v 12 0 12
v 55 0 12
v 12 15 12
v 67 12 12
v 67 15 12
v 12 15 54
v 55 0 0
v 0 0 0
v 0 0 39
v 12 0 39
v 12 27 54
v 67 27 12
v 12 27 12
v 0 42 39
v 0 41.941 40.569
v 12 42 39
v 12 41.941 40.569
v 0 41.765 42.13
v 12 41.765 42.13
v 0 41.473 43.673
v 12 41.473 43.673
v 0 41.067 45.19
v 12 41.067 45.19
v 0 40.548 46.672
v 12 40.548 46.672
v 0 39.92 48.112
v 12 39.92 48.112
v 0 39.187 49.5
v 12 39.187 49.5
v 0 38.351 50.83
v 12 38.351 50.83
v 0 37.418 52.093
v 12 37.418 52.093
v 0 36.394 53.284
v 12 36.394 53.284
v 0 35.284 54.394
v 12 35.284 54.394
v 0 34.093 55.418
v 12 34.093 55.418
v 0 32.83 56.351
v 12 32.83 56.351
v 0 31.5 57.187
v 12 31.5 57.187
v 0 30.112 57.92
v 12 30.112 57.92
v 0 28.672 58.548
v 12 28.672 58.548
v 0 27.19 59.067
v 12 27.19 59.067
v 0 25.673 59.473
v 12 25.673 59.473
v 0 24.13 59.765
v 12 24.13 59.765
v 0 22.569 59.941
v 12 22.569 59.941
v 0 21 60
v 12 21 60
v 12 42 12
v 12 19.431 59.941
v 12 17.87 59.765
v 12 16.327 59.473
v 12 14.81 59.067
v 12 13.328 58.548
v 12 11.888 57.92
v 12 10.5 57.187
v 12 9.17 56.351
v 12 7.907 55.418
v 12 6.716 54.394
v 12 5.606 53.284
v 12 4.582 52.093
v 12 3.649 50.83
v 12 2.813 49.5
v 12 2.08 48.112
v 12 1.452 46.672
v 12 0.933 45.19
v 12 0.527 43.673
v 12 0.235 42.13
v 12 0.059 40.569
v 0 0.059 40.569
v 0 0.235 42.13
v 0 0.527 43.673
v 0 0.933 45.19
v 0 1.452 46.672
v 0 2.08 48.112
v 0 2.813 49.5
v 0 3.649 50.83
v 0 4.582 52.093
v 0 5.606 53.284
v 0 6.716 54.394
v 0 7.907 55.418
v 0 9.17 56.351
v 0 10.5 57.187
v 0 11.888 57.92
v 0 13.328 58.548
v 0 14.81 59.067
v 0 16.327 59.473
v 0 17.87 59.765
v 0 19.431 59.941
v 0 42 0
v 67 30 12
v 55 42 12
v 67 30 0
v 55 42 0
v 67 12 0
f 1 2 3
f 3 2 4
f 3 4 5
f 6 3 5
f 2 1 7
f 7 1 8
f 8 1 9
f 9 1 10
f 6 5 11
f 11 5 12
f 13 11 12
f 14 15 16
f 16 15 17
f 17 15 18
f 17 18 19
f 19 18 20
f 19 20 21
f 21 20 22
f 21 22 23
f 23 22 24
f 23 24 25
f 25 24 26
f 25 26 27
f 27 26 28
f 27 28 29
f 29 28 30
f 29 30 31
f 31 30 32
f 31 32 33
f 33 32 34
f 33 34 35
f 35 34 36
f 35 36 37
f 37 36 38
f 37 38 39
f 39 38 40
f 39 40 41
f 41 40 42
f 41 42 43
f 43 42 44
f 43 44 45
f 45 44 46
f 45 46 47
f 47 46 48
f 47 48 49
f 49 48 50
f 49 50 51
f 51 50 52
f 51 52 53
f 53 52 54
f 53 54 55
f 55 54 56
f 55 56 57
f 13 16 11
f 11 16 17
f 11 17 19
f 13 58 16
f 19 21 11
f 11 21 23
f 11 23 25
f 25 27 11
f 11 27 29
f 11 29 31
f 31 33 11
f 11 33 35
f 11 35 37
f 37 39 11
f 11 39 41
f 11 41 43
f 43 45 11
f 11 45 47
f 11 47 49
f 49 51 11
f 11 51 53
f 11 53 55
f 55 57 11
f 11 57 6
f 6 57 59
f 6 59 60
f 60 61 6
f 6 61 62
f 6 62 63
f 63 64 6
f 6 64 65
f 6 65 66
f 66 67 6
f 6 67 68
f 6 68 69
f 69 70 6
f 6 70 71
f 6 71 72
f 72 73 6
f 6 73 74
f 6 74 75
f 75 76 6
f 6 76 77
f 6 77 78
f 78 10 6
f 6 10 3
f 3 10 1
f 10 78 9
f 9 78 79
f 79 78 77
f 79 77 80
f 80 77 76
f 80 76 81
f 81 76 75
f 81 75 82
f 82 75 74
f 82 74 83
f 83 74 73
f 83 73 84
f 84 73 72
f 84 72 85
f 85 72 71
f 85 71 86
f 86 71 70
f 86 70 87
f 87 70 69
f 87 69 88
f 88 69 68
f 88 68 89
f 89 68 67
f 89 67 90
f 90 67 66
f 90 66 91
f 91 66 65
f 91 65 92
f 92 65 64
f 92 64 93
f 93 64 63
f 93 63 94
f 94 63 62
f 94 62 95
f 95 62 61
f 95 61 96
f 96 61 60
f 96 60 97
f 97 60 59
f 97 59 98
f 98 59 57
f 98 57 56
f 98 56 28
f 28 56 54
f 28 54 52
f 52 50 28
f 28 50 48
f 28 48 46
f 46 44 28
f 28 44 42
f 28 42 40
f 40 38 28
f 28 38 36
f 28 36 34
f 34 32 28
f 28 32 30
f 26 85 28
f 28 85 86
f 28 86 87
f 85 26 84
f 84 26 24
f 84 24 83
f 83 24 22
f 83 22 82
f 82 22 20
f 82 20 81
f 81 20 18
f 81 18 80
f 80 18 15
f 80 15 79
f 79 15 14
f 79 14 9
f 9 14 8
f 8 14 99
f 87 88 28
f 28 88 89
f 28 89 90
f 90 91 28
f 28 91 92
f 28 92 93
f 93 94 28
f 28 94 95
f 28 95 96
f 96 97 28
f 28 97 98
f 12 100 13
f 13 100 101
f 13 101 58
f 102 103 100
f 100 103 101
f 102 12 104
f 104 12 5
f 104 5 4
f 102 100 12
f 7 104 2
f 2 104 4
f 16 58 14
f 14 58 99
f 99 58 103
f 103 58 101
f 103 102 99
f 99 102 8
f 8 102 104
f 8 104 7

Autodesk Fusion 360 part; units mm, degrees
sketch "Sketch1" plane through (0, 0, 0) normal (0, 0, 1) x (1, 0, 0)
  line L0 (0, 0) -> (55, 0)
  line L1 (67, 12) -> (67, 30)
  line L2 (55, 42) -> (0, 42)
  line L3 (0, 42) -> (0, 0)
  line L4 (67, 0) -> (55, 0) construction
  line L5 (55, 0) -> (55, 12) construction
  line L6 (55, 12) -> (67, 12) construction
  line L7 (67, 12) -> (67, 0) construction
  line L8 (67, 42) -> (55, 42) construction
  line L9 (55, 42) -> (55, 30) construction
  line L10 (55, 30) -> (67, 30) construction
  line L11 (67, 30) -> (67, 42) construction
  line L12 (55, 0) -> (67, 12)
  line L13 (55, 42) -> (67, 30)
  line L14 (0, 42) -> (13, 42)
  line L15 (13, 42) -> (13, 0)
  line L16 (13, 0) -> (0, 0)
  line L17 (0, 0) -> (0, 42)
  line L18 (13, 21) -> (67, 21)
  line L19 (67, 21) -> (13, 21)
  line L20 (13, 27) -> (67, 27)
  line L21 (67, 27) -> (67, 21)
  line L22 (13, 15) -> (67, 15)
extrude "Extrude1" add sketch "Sketch1" along normal blind 12
sketch "Sketch4" plane through (0, 0, 12) normal (0, 0, 1) x (-1, 0, 0)
  line L0 (-55, -42) -> (0, -42)
  line L1 (0, -42) -> (0, 0)
  line L2 (0, 0) -> (-55, 0)
  line L3 (-55, 0) -> (-67, -12)
  line L4 (-67, -12) -> (-67, -30)
  line L5 (-67, -30) -> (-55, -42)
  line L6 (0, -42) -> (-12, -42)
  line L7 (-12, -42) -> (-12, 0)
  line L8 (-12, 0) -> (0, 0)
  line L9 (0, 0) -> (0, -42)
extrude "Extrude2" add sketch "Sketch4" along normal blind 27 contours L0 L1 L2 L6 L7 L8 L9
sketch "Sketch5" plane through (0, 0, 39) normal (0, 0, 1) x (-1, 0, 0)
  line L0 (0, 0) -> (-12, 0)
  line L1 (-12, 0) -> (-12, -42)
  line L2 (-12, -42) -> (0, -42)
  line L3 (0, -42) -> (0, 0)
  line L4 (0, -42) -> (-12, -42)
  line L5 (-12, -42) -> (-12, 0)
  line L6 (-12, 0) -> (0, 0)
  line L7 (0, 0) -> (0, -42)
extrude "Extrude3" add sketch "Sketch5" along normal blind 21
fillet "Fillet1" radius 21 1 edges at (6, 0, 60)
sketch "Sketch6" plane through (0, 0, 0) normal (0, -1, 0) x (1, 0, 0)
  line L0 (12, 39) -> (0, 39)
  line L1 (0, 39) -> (0, 0)
  line L2 (0, 0) -> (55, 0)
  line L3 (55, 0) -> (55, 12)
  line L4 (55, 12) -> (12, 12)
  line L5 (12, 12) -> (12, 39)
  line L6 (0, 0) -> (0, 39)
  line L7 (0, 39) -> (12, 39)
fillet "Fillet2" radius 21 1 edges at (6, 42, 60)
sketch "Sketch7" plane through (0, 0, 12) normal (0, 0, 1) x (-1, 0, 0)
  line L0 (-12, -42) -> (-12, 0)
  line L1 (-12, 0) -> (-55, 0)
  line L2 (-55, 0) -> (-67, -12)
  line L3 (-67, -12) -> (-67, -30)
  line L4 (-67, -30) -> (-55, -42)
  line L5 (-55, -42) -> (-12, -42)
  line L6 (-25, -15) -> (-12, -15)
  line L7 (-25, -15) -> (-67, -15)
  line L8 (-67, -15) -> (-67, -27)
  line L9 (-67, -27) -> (-12, -27)
sketch "Sketch8" plane through (0, 0, 0) normal (0, -1, 0) x (1, 0, 0)
  line L0 (12, 12) -> (12, 54)
  line L1 (12, 54) -> (67, 12)
  line L2 (12, 12) -> (67, 12)
extrude "Extrude4" add sketch "Sketch8" against normal blind 27
sketch "Sketch9" plane through (0, 0, 0) normal (0, -1, 0) x (1, 0, 0)
  line L0 (12, 39) -> (0, 39)
  line L1 (0, 39) -> (0, 0)
  line L2 (0, 0) -> (55, 0)
  line L3 (55, 0) -> (55, 12)
  line L4 (55, 12) -> (67, 12)
  line L5 (67, 12) -> (12, 54)
  line L6 (12, 54) -> (12, 39)
  line L7 (12, 54) -> (12, 12)
  line L8 (12, 12) -> (67, 12)
  line L9 (12, 54) -> (67, 12)
extrude "Extrude5" cut sketch "Sketch9" against normal blind 15 contours L4 L5 L6 L7 L8 L9
